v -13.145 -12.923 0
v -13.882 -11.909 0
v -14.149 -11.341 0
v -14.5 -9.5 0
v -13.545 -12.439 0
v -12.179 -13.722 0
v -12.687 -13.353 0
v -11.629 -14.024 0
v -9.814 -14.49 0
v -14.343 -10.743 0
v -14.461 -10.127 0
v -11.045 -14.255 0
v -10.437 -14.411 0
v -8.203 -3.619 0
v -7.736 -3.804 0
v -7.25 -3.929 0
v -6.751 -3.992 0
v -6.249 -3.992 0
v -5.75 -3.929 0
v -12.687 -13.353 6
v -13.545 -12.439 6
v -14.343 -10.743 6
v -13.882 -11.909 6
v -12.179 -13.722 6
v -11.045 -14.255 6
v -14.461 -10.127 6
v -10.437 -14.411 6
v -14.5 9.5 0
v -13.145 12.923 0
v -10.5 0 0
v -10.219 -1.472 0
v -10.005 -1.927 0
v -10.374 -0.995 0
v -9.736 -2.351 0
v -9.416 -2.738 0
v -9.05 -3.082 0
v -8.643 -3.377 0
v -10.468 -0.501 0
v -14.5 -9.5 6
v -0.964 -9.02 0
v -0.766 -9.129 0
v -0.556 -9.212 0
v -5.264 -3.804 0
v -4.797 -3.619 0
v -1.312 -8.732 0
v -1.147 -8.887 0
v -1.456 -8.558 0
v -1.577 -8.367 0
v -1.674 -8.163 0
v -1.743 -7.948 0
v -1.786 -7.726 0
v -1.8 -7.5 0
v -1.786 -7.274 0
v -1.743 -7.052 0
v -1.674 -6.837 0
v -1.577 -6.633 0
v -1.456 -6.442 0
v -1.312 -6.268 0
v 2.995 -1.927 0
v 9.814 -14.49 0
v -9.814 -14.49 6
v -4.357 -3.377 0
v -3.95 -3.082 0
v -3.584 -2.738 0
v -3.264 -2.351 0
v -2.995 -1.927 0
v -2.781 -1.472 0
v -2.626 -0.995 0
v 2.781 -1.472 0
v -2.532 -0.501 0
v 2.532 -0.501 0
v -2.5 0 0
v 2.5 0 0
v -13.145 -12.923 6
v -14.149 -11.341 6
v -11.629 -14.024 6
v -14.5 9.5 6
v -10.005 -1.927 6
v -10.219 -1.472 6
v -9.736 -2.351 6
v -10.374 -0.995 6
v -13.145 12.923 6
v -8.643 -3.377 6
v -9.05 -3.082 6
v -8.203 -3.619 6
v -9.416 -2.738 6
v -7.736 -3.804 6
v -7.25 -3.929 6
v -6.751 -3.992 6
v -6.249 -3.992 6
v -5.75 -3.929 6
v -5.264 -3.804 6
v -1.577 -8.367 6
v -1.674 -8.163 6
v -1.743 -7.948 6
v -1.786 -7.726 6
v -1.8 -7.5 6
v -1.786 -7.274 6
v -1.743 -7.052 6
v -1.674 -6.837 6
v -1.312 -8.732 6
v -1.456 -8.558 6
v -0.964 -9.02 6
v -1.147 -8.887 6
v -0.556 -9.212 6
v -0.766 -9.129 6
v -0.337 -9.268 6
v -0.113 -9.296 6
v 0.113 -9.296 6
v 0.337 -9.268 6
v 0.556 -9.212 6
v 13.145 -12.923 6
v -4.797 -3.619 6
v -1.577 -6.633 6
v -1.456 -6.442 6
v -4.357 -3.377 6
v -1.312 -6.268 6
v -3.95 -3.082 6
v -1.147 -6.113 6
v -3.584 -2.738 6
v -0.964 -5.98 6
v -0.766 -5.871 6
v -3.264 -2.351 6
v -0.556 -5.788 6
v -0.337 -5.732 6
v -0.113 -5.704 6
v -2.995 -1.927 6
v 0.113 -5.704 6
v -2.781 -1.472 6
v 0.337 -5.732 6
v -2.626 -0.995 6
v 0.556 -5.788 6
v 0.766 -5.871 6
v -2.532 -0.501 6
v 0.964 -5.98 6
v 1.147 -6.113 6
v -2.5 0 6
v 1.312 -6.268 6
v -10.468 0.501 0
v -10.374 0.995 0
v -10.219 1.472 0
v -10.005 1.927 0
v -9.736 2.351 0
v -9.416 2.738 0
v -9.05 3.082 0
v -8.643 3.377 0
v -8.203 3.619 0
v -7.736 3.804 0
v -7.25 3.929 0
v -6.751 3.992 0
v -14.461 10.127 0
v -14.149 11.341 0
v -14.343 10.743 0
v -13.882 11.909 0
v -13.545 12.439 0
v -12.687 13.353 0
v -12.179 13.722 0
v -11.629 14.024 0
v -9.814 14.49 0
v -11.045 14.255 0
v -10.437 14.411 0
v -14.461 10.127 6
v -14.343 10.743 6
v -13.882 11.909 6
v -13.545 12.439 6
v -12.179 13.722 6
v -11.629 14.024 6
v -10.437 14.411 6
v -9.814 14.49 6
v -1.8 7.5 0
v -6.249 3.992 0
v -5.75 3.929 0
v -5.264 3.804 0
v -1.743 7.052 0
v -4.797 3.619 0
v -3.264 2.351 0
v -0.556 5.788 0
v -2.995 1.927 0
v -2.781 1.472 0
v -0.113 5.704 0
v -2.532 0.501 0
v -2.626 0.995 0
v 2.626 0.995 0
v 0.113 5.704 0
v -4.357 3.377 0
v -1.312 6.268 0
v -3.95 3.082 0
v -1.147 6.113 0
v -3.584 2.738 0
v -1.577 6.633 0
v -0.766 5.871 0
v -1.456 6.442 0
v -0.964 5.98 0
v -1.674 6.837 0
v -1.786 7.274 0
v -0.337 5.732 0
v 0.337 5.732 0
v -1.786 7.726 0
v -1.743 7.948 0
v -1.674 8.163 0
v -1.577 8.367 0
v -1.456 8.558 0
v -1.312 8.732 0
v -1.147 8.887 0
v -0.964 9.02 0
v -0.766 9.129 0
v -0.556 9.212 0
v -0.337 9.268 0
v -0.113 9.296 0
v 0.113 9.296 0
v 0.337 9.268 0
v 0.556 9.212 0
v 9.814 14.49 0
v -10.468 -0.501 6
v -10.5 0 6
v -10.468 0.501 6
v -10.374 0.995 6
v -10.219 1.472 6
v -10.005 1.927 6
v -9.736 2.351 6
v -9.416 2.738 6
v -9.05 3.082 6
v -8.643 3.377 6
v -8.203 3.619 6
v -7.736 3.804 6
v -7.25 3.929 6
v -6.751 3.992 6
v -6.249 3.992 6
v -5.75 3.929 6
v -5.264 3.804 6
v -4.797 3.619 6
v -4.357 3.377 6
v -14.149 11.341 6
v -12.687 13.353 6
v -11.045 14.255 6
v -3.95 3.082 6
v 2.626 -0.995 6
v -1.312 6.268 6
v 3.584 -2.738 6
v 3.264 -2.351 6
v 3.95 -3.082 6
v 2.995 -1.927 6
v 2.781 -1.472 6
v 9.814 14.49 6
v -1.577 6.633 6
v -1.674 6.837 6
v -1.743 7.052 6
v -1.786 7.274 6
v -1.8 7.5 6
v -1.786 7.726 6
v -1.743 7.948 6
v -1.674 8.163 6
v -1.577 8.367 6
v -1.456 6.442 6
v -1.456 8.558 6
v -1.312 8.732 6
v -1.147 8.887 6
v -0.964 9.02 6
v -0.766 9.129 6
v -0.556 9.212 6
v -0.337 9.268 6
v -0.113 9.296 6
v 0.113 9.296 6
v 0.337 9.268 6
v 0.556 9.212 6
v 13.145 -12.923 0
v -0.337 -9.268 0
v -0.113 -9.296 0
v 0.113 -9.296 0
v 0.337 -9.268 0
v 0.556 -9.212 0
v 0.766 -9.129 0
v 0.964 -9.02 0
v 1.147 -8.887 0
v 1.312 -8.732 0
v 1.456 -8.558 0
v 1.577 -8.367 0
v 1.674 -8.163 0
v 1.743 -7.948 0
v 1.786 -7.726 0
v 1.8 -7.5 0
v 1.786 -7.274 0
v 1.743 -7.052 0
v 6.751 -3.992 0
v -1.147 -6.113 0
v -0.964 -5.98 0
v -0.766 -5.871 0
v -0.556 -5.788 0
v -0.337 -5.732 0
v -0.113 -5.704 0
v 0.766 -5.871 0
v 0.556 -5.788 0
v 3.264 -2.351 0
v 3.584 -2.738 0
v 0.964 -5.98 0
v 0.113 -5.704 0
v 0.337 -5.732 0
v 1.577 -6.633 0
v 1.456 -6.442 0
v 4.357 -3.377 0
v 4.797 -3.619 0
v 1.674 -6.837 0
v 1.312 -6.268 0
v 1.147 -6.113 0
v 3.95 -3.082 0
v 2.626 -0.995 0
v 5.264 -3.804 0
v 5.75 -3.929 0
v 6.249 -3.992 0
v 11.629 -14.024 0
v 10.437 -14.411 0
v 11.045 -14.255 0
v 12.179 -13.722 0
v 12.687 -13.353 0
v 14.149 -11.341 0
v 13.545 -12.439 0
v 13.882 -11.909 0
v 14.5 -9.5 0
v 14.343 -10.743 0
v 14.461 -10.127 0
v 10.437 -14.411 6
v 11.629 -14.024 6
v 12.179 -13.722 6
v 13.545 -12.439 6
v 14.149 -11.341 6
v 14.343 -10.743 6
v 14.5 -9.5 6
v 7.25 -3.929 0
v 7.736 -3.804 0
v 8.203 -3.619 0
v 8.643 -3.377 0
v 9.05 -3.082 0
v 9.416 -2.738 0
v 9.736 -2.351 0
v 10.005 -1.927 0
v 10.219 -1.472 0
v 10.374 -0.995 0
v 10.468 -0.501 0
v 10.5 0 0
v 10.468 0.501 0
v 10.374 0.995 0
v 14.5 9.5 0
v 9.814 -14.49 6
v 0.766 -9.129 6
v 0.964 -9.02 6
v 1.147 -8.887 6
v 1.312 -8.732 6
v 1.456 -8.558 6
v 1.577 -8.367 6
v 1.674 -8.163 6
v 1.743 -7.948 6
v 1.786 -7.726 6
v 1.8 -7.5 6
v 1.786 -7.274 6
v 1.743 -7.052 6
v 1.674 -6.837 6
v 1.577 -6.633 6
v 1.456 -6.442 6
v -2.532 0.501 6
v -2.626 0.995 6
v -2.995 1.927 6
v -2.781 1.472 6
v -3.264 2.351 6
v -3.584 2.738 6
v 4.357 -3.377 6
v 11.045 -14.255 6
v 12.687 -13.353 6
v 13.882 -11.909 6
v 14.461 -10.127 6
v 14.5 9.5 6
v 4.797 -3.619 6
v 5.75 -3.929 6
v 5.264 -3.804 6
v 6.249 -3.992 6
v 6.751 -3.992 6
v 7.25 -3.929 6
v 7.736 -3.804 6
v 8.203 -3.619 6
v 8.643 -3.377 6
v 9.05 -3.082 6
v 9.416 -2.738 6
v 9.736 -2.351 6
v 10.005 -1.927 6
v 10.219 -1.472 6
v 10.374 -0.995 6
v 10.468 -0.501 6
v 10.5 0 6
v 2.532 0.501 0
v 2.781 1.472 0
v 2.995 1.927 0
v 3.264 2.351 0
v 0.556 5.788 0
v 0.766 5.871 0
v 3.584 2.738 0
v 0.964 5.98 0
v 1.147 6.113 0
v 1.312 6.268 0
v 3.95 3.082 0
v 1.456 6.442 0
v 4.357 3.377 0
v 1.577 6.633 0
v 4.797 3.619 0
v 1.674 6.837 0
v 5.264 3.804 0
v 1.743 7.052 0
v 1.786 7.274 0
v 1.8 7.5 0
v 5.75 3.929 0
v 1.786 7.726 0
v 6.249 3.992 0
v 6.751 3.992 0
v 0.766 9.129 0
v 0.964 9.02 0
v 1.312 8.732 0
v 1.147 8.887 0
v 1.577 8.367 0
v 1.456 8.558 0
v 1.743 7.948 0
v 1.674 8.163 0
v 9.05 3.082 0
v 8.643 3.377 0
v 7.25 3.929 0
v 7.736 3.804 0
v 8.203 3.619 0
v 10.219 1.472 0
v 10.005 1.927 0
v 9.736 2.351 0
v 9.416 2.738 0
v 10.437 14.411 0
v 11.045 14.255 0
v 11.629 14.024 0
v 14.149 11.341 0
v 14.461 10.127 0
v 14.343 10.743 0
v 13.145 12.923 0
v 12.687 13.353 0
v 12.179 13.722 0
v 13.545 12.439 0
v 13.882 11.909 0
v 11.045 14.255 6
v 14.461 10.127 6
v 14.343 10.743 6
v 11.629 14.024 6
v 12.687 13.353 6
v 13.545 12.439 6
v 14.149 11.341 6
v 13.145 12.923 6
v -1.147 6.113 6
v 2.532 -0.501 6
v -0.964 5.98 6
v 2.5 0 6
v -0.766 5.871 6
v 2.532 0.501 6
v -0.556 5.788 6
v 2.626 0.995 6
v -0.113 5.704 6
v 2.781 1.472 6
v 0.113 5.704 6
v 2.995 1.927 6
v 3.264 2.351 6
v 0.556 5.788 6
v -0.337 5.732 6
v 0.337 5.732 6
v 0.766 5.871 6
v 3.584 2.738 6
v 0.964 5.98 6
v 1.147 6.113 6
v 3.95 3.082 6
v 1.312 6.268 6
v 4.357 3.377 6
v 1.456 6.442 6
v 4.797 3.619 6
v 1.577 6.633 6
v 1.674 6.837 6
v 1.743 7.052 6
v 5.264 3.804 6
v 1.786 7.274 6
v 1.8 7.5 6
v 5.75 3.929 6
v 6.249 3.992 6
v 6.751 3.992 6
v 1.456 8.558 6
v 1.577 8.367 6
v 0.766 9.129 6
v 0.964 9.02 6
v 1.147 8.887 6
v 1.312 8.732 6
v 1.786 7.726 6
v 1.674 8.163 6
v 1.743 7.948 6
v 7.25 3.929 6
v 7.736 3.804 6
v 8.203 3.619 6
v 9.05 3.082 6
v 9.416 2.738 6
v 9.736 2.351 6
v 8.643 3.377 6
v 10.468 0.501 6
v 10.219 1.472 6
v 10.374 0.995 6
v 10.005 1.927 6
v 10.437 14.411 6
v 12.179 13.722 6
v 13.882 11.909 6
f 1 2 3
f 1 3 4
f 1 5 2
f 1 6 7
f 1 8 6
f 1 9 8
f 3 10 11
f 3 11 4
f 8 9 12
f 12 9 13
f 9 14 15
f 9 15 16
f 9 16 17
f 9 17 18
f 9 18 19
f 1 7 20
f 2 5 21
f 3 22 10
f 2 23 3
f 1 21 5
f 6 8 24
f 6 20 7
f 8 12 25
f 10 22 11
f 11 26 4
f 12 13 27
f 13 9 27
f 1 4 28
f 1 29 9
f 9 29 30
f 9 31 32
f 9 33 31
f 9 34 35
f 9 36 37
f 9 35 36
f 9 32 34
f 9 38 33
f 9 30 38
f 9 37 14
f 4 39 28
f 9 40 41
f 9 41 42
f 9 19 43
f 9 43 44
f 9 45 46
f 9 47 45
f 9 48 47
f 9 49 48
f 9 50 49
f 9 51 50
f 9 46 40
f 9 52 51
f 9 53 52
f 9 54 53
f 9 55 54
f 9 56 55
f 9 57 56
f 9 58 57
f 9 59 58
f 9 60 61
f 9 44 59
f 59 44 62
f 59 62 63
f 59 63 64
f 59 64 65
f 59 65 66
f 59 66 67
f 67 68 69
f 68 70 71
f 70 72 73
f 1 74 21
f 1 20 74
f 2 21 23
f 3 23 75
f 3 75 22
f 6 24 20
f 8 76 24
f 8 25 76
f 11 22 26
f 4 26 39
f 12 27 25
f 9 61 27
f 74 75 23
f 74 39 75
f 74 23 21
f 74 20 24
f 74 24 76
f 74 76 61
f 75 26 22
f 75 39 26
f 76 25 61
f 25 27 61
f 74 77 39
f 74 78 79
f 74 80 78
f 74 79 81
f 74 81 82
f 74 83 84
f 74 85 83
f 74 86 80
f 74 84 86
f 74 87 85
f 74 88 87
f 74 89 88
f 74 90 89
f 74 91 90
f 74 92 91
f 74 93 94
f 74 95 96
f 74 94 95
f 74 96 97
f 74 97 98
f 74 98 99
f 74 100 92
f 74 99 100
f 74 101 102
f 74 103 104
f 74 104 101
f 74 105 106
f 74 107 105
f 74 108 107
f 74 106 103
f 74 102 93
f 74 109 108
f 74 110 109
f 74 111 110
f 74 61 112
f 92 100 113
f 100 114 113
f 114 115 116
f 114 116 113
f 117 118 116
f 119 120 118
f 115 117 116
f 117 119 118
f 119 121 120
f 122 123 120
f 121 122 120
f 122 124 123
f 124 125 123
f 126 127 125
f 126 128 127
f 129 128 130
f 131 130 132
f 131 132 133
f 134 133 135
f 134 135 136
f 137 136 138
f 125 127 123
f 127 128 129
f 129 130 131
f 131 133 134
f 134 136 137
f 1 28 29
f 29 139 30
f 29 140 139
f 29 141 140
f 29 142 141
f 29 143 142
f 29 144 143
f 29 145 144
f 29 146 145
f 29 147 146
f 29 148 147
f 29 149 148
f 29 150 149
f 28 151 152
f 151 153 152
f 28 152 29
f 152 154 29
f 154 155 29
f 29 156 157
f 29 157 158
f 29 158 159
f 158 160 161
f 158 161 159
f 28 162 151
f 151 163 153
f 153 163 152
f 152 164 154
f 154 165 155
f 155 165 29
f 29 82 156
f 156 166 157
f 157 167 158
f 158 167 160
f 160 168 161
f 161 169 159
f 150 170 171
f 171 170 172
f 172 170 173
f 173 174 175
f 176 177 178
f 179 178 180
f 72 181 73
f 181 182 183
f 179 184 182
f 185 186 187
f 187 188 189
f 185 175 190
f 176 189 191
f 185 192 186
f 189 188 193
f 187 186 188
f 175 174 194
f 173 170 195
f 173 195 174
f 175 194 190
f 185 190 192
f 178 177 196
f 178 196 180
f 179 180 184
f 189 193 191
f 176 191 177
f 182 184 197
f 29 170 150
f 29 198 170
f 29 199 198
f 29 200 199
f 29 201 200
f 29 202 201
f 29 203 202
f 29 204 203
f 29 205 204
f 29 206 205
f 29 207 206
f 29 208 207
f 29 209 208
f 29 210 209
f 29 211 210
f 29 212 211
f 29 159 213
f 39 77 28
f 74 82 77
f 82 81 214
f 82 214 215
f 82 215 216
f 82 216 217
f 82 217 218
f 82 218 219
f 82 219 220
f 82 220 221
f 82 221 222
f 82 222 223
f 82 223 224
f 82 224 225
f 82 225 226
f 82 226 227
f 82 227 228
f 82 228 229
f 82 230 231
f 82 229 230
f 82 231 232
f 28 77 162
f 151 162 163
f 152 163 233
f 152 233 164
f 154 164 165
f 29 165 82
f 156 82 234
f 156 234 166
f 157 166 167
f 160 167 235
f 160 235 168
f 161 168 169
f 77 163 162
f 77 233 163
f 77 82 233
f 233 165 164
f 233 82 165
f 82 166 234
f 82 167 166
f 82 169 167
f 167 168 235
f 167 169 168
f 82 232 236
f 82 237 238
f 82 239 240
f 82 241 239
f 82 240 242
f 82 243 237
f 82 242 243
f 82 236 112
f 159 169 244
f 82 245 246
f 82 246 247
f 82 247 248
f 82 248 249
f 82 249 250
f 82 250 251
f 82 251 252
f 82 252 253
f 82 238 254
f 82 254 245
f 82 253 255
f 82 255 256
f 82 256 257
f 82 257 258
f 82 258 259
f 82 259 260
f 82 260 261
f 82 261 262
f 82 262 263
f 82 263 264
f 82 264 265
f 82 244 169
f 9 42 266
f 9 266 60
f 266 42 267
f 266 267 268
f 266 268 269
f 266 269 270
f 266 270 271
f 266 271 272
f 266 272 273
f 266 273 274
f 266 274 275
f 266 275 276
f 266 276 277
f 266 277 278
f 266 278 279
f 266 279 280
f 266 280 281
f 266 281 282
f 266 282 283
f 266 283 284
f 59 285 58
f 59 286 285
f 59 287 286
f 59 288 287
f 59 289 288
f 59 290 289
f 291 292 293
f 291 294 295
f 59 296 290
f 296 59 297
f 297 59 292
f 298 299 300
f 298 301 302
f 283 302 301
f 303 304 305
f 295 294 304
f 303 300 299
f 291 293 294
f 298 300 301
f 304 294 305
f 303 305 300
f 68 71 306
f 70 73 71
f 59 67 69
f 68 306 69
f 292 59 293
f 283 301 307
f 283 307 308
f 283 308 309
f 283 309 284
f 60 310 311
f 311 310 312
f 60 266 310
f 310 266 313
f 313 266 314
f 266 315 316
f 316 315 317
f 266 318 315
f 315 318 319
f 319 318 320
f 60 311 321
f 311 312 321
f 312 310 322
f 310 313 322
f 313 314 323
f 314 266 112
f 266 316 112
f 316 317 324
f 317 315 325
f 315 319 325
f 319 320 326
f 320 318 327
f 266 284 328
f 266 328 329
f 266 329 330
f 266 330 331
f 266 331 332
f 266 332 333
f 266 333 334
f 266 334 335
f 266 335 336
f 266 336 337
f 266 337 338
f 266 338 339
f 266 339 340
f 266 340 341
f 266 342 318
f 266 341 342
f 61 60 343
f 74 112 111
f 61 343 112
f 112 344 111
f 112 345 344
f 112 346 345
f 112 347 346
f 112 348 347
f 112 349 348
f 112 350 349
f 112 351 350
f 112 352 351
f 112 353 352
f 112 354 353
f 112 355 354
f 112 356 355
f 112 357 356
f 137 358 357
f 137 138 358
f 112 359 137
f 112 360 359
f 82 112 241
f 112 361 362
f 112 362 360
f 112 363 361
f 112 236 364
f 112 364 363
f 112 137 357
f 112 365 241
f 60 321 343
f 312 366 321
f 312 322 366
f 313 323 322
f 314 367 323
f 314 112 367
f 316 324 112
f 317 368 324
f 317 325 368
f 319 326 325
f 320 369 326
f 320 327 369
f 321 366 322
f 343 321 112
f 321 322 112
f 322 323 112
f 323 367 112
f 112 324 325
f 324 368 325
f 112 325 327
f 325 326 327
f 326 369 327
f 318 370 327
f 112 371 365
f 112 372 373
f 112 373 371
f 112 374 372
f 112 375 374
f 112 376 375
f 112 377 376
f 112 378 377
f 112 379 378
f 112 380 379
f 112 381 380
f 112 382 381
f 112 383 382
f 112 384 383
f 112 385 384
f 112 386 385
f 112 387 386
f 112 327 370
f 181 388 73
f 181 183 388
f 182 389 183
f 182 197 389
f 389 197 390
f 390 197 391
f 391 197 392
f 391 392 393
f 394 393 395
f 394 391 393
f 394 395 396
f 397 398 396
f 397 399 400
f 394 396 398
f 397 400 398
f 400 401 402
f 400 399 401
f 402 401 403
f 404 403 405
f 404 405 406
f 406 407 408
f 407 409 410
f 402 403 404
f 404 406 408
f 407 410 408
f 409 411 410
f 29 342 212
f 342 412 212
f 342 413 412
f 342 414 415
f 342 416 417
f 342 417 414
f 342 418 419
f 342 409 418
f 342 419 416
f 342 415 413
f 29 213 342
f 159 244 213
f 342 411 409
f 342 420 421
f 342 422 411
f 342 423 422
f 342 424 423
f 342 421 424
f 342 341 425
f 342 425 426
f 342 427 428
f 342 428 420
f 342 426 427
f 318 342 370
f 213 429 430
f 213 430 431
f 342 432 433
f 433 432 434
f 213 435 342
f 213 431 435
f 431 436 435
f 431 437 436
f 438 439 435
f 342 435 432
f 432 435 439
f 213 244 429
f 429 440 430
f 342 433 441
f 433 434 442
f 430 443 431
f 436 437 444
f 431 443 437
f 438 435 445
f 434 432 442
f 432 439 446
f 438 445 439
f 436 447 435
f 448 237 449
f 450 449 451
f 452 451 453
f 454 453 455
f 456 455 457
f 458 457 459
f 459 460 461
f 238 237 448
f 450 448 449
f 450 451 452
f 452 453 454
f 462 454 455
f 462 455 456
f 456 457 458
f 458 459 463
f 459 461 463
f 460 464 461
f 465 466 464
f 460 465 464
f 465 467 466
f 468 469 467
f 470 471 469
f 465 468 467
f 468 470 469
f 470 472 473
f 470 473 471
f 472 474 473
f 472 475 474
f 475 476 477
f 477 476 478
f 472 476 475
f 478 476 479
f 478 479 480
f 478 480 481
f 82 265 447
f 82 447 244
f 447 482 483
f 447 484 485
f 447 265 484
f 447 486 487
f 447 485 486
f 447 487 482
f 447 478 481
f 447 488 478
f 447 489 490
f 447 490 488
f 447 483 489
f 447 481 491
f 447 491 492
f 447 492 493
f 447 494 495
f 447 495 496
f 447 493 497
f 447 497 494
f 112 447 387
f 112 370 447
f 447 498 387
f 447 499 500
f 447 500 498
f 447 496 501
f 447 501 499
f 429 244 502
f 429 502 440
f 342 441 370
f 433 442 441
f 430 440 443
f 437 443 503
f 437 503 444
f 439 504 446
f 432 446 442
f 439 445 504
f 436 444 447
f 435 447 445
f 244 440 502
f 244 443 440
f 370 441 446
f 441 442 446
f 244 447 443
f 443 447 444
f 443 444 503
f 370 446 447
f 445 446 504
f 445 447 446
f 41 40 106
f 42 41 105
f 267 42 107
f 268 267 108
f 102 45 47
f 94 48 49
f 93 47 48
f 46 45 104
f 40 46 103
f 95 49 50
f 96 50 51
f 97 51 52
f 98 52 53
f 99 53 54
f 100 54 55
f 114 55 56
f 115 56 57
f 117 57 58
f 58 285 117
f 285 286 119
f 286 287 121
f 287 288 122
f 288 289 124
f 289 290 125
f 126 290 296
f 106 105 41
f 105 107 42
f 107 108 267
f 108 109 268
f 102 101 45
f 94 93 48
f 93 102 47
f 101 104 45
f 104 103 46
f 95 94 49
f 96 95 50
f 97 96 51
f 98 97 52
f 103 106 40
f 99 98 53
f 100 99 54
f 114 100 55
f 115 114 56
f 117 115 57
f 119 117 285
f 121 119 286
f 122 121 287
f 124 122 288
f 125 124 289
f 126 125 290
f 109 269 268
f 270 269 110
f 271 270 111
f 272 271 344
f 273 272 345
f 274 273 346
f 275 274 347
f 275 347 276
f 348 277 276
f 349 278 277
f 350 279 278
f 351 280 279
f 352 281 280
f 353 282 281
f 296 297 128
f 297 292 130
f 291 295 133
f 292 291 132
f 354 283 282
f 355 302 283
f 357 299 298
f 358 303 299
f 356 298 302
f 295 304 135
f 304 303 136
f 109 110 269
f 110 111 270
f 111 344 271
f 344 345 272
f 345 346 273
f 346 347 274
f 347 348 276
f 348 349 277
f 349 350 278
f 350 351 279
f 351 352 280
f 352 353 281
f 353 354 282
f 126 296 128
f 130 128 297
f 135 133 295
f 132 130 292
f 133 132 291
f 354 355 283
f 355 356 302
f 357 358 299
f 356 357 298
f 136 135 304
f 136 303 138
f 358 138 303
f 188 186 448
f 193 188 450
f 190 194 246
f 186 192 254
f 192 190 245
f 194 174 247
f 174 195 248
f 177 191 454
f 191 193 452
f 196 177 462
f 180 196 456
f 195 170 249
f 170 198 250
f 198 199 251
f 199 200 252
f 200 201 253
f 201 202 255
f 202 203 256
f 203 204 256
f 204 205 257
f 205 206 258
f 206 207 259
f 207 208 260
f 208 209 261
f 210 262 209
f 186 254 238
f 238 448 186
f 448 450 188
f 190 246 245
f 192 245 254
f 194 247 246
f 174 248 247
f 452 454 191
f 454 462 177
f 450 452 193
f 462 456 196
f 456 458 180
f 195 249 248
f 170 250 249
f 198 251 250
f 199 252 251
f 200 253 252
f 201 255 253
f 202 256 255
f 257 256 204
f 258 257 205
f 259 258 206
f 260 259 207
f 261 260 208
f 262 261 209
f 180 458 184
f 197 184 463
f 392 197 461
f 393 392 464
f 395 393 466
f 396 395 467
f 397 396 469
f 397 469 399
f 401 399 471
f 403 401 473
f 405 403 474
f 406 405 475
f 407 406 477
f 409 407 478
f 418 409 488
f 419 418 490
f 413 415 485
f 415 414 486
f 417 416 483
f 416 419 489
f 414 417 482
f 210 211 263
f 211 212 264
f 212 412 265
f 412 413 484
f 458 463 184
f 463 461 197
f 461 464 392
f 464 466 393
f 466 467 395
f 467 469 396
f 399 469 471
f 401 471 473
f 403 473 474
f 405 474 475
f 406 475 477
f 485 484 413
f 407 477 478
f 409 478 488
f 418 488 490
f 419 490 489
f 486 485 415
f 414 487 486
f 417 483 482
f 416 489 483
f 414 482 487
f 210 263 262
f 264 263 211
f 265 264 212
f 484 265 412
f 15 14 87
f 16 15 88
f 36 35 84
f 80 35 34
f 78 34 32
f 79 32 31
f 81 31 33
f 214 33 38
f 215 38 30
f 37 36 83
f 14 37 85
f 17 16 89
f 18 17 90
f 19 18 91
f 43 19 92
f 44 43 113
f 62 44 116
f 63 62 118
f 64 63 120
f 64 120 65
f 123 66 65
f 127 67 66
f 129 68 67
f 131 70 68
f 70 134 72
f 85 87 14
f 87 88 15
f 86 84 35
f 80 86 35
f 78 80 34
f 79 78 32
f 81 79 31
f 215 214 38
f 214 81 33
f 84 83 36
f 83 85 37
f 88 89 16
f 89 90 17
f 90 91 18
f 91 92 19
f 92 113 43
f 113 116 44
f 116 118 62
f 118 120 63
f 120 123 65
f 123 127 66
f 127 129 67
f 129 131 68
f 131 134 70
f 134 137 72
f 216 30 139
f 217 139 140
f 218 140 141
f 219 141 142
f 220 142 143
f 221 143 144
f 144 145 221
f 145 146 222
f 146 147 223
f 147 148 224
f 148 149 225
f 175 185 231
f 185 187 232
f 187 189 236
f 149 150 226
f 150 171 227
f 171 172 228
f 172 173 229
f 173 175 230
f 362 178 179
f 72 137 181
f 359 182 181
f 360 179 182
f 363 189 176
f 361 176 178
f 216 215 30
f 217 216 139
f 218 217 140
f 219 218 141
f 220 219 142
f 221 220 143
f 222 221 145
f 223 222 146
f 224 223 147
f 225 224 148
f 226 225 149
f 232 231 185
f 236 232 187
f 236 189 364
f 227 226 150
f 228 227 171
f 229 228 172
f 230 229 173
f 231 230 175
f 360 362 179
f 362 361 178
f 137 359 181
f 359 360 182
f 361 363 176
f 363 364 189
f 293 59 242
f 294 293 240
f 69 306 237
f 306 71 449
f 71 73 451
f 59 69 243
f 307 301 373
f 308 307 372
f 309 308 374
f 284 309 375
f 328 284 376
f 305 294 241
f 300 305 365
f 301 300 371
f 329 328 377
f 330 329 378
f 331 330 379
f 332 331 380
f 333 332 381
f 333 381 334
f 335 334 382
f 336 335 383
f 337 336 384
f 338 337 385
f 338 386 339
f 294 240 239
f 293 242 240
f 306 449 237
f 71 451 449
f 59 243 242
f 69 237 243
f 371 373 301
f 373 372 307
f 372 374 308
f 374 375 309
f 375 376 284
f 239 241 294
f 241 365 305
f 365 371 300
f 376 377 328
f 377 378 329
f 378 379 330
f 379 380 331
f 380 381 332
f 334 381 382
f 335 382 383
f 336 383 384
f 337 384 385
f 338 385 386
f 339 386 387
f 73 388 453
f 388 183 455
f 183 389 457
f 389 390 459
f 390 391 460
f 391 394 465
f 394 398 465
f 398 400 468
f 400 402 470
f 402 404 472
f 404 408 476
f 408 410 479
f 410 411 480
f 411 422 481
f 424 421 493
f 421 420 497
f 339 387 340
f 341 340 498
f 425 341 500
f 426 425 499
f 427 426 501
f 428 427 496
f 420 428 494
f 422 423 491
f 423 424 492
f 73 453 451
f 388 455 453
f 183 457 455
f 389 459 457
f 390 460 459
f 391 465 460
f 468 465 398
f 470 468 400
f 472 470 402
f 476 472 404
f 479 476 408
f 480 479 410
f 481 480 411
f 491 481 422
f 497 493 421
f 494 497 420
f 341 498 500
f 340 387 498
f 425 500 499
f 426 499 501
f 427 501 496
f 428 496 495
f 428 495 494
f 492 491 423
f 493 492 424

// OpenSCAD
$fn = 50;

difference() {
	union() {
		hull() {
			translate(v = [-9.5, 9.5, 0]) {
				cylinder(h = 6, r = 5);
			}
			translate(v = [9.5, 9.5, 0]) {
				cylinder(h = 6, r = 5);
			}
			translate(v = [-9.5, -9.5, 0]) {
				cylinder(h = 6, r = 5);
			}
			translate(v = [9.5, -9.5, 0]) {
				cylinder(h = 6, r = 5);
			}
		}
	}
	union() {
		translate(v = [0.0, -7.5, 0]) {
			cylinder(h = 6, r = 1.8);
		}
		translate(v = [0.0, 7.5, 0]) {
			cylinder(h = 6, r = 1.8);
		}
		translate(v = [-6.5, 0, 0.0]) {
			cylinder(h = 6, r = 4.0);
		}
		translate(v = [6.5, 0, 0.0]) {
			cylinder(h = 6, r = 4.0);
		}
	}
}
